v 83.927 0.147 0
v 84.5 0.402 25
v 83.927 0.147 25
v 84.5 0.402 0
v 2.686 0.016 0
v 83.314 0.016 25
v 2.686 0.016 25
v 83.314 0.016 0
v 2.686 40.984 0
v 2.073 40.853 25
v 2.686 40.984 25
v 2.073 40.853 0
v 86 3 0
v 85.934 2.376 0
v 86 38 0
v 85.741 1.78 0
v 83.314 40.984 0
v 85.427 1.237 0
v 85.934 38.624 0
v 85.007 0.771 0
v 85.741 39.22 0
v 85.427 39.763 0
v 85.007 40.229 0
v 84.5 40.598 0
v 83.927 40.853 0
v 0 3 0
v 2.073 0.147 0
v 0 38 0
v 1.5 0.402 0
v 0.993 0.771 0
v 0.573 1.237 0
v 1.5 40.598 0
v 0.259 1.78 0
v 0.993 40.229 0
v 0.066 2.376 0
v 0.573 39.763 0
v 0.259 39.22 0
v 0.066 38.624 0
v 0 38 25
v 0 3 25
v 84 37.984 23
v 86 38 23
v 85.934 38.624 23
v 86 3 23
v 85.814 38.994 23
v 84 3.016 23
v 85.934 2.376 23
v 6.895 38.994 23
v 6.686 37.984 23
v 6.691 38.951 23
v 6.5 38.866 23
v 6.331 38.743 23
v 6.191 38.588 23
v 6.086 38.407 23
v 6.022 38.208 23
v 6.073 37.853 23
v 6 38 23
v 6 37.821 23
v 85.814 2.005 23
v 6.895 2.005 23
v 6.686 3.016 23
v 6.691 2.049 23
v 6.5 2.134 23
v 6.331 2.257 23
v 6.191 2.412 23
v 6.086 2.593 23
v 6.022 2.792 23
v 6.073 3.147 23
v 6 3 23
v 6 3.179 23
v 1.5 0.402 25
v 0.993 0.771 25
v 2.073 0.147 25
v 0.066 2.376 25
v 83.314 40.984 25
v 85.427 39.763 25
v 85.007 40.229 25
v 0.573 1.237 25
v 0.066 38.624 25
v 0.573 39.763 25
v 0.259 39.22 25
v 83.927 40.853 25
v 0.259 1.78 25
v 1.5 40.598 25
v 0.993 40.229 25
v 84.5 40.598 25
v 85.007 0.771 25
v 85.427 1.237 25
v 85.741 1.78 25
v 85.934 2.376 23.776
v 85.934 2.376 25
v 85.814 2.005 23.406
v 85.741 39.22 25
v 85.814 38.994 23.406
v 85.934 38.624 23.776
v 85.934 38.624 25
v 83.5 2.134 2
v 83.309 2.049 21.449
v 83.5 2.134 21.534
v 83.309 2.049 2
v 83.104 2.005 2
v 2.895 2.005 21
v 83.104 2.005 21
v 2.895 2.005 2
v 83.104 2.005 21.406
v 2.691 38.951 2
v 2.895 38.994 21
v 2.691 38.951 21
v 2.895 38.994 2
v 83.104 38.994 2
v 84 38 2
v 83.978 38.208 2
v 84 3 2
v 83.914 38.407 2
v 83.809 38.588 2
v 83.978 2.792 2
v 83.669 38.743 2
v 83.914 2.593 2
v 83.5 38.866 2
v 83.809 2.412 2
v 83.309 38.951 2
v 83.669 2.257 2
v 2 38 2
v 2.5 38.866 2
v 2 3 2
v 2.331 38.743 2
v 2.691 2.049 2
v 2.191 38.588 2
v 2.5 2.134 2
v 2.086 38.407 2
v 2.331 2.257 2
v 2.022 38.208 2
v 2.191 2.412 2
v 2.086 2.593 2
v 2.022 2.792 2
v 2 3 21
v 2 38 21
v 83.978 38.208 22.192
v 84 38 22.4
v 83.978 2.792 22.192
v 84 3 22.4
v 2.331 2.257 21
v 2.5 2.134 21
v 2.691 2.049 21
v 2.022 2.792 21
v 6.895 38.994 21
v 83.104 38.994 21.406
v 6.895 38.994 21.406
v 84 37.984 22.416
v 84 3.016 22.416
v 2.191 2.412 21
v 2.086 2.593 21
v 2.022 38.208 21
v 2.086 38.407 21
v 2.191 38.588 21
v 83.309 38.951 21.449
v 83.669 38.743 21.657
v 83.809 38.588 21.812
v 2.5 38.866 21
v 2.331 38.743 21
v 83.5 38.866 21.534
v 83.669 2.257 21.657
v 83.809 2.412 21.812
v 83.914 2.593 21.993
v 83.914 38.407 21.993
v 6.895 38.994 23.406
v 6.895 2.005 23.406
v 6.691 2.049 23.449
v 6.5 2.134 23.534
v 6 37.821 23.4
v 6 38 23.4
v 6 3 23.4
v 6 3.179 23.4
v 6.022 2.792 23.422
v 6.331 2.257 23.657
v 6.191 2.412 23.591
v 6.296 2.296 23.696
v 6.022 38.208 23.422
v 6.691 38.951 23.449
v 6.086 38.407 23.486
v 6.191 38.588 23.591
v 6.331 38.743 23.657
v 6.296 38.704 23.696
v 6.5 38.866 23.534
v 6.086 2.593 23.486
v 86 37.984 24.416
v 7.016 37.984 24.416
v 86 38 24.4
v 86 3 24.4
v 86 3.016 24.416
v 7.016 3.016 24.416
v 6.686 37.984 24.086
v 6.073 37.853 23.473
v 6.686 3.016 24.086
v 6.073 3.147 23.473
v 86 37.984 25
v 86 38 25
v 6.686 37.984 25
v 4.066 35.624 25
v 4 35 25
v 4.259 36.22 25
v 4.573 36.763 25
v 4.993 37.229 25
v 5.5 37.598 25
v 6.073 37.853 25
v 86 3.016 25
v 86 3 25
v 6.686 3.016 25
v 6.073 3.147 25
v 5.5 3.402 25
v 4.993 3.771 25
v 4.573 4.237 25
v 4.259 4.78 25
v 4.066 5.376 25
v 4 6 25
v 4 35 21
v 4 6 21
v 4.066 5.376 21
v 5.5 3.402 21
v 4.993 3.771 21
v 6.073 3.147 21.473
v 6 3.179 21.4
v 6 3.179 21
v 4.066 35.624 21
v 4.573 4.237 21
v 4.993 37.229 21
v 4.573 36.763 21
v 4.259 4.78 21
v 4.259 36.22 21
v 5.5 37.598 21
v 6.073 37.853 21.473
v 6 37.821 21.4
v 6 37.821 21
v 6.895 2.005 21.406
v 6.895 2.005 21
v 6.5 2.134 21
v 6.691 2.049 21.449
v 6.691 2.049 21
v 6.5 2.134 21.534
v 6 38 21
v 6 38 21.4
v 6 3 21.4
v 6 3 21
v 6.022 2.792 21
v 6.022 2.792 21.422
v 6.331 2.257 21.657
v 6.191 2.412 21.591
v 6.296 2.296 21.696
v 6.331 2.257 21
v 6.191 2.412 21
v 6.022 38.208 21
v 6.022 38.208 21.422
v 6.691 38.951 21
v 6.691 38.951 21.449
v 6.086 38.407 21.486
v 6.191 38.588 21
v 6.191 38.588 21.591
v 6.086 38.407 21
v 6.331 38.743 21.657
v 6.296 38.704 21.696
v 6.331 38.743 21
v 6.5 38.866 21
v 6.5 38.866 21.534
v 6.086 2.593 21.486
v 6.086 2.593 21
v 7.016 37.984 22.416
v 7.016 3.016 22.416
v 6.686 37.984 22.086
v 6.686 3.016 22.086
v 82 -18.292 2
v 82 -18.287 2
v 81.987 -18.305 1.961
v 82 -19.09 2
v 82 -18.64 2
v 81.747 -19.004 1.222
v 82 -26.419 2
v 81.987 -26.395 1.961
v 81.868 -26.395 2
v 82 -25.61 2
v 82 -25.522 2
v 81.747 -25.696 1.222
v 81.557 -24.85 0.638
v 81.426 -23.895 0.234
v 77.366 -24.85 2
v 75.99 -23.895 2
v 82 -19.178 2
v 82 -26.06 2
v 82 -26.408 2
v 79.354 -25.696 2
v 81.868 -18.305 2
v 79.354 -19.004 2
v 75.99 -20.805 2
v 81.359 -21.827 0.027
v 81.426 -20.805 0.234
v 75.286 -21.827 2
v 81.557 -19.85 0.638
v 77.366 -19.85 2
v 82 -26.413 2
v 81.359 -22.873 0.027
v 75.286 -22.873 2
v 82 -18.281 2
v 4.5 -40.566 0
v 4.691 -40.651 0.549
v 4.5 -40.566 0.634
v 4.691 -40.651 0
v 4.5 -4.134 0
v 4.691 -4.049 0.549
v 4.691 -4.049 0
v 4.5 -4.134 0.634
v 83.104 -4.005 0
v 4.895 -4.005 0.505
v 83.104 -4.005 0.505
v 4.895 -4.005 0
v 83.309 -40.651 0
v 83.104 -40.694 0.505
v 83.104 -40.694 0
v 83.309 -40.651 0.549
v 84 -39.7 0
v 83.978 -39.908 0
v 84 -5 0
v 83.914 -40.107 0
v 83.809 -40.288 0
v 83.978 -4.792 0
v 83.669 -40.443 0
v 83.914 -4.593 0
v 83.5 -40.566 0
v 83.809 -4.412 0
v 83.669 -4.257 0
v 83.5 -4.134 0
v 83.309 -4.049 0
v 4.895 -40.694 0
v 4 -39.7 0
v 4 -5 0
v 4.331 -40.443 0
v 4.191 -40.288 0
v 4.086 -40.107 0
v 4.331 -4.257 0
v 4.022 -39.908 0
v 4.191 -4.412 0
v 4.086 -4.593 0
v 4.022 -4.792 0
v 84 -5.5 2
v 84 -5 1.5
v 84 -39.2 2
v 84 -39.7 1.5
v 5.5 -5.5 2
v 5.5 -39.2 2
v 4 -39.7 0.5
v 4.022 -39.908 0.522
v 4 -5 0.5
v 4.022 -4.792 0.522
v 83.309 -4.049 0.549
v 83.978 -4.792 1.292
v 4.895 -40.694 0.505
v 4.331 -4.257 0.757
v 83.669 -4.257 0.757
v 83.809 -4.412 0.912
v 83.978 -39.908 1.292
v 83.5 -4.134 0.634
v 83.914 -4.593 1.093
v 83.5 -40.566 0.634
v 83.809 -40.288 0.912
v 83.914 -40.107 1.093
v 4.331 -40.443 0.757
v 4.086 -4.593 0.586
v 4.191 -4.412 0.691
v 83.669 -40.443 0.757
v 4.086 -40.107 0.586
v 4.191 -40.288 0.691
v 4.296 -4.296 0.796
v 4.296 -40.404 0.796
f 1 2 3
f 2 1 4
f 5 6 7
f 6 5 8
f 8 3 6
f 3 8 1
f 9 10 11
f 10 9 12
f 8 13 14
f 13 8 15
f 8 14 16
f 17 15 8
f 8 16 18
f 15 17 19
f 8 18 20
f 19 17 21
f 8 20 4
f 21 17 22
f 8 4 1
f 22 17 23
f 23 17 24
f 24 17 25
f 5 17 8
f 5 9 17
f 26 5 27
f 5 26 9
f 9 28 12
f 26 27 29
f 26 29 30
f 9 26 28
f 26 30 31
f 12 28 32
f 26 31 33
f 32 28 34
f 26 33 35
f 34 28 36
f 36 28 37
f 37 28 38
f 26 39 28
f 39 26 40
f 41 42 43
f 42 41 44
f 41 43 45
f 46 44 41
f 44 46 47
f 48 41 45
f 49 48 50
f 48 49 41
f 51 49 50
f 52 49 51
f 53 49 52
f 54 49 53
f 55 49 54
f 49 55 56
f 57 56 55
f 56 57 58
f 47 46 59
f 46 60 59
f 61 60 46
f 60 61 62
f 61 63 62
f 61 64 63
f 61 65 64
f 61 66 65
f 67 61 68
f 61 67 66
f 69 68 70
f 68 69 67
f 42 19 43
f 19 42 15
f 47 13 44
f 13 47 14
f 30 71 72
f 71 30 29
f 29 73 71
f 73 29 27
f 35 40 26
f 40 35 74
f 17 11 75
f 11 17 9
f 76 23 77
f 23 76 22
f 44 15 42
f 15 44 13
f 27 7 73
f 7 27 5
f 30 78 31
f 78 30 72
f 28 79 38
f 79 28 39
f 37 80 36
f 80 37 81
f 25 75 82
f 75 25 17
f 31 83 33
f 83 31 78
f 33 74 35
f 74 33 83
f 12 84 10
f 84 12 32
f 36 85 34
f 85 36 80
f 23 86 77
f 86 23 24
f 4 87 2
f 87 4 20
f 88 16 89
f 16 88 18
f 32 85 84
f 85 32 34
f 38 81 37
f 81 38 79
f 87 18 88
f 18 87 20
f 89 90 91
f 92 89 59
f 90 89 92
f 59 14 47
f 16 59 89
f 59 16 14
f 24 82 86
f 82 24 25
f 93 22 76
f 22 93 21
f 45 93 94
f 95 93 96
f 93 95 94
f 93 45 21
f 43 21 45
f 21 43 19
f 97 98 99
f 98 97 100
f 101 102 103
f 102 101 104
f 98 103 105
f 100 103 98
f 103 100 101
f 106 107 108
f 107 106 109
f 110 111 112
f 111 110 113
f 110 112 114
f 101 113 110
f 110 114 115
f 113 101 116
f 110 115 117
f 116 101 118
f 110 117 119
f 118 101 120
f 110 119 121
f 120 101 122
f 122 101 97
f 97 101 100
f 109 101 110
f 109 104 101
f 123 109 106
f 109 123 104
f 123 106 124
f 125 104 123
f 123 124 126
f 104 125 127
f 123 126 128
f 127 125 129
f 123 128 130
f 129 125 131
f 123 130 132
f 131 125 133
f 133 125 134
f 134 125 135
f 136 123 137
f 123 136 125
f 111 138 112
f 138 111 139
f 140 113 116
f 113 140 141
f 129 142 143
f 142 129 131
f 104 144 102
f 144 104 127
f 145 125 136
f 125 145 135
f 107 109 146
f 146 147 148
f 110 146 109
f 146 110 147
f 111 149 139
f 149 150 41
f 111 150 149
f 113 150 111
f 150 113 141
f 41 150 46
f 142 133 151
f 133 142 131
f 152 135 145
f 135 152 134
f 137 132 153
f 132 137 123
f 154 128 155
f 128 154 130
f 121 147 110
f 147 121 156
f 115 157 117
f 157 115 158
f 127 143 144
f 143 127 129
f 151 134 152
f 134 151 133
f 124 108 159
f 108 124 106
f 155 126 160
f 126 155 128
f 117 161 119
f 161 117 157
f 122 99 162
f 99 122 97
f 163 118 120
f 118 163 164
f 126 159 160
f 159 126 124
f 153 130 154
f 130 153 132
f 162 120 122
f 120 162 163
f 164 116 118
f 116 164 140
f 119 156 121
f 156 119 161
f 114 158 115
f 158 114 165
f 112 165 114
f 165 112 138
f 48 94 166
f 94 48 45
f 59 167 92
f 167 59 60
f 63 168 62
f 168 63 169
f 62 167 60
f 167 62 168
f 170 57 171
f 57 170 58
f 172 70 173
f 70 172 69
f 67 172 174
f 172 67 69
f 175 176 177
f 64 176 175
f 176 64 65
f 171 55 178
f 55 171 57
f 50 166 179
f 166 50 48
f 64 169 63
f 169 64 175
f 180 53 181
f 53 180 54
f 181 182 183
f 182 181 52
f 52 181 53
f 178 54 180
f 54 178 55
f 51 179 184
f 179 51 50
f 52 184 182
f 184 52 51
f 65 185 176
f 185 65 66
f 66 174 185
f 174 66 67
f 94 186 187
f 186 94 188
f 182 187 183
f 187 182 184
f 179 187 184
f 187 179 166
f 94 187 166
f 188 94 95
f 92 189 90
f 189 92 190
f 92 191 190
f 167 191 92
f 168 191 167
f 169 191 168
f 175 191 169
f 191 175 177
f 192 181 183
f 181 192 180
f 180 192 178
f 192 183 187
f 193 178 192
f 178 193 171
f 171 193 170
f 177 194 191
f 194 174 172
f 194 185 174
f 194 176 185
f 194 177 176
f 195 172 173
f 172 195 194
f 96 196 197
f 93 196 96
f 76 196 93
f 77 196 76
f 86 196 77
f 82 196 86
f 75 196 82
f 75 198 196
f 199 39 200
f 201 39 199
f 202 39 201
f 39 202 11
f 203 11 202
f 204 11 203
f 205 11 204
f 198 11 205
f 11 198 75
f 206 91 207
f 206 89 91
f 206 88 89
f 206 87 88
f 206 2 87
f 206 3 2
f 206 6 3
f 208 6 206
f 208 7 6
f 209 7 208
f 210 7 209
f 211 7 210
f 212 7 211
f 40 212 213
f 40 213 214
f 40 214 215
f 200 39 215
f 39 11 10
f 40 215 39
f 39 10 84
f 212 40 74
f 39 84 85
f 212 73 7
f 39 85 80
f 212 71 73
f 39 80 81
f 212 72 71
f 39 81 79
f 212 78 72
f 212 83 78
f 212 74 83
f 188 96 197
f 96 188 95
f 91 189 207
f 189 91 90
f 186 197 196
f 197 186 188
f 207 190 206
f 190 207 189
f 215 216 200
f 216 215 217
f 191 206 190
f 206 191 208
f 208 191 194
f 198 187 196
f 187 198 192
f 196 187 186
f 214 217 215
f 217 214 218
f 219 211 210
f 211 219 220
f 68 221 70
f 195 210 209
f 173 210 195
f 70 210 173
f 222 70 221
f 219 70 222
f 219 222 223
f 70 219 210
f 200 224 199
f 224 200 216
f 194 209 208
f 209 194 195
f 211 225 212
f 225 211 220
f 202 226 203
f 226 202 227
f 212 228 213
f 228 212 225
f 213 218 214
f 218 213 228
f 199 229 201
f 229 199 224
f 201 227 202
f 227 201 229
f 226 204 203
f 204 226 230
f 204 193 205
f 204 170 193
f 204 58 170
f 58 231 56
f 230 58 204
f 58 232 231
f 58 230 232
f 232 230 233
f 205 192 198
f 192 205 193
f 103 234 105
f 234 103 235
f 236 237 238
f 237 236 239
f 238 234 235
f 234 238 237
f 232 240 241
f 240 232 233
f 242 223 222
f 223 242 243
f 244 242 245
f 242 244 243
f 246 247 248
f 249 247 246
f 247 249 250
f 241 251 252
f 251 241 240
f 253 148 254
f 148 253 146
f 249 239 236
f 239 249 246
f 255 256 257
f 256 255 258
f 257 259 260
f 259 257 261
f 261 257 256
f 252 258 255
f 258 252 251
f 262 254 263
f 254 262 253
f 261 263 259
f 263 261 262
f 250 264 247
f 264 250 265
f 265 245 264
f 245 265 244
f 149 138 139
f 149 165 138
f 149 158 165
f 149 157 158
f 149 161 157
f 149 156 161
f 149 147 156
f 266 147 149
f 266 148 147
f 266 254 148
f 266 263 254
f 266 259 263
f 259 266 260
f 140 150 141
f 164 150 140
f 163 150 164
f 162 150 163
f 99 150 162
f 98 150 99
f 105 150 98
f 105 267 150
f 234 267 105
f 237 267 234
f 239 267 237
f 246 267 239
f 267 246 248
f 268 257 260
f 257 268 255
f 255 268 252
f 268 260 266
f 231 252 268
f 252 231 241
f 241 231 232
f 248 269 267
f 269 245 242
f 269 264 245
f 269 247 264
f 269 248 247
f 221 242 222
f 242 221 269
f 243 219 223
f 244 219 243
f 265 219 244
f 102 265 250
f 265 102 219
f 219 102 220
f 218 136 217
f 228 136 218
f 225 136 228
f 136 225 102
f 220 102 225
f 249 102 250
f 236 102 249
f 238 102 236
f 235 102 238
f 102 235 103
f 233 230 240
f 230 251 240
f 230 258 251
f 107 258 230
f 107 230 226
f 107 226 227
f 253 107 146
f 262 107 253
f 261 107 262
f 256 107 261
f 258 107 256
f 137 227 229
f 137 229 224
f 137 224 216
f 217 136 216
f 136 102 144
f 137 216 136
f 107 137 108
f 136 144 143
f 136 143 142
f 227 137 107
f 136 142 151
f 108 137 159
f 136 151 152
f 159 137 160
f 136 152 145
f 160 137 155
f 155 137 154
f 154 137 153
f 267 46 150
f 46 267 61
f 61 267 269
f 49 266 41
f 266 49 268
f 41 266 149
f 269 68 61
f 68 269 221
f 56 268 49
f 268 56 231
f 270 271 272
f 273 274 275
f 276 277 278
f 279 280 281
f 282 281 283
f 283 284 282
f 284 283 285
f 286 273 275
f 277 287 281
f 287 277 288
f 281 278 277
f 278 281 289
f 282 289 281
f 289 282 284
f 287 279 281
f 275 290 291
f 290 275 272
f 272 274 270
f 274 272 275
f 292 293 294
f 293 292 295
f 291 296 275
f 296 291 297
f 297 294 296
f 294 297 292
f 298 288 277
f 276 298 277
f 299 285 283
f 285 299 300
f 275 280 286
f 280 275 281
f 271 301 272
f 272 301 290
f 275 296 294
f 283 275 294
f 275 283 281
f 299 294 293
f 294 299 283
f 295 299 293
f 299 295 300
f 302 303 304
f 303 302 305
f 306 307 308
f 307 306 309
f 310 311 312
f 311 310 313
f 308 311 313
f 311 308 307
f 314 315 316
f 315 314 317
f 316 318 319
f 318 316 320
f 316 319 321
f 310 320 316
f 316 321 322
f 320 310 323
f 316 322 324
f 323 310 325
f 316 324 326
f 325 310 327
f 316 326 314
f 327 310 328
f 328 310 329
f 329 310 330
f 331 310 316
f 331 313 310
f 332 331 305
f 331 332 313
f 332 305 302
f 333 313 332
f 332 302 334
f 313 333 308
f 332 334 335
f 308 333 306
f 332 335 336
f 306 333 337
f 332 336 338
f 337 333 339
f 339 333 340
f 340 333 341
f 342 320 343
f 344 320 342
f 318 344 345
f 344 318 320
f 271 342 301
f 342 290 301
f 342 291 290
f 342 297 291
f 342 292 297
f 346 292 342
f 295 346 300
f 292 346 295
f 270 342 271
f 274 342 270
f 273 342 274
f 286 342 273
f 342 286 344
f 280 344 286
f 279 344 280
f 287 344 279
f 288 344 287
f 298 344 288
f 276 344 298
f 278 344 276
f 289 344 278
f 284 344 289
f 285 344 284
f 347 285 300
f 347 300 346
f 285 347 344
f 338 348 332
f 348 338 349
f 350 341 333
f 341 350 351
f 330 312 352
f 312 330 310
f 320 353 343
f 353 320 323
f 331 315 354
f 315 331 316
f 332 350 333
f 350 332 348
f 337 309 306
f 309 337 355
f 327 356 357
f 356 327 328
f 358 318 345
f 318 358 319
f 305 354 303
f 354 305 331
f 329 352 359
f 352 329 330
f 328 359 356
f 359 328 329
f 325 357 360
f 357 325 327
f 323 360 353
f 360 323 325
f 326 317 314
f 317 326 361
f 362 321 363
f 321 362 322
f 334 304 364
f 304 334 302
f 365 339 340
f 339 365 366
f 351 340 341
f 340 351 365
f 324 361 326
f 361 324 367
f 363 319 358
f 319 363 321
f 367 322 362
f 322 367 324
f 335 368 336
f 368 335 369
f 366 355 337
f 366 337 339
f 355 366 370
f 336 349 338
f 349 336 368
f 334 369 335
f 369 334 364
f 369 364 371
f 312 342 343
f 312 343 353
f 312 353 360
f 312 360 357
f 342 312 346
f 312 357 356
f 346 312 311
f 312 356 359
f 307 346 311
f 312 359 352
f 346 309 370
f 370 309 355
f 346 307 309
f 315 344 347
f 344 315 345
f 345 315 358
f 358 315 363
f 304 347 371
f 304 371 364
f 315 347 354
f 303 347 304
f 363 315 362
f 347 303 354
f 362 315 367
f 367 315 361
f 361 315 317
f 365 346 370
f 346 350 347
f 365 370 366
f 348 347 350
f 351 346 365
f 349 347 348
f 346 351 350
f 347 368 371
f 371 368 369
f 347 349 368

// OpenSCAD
itemsShown="both"; // [both,box,lid]
boxLength=86;
boxWidth=41;
boxHeight=25;
cornerRadius=3;
wallThickness=2;
bottomThickness=2;
lidThickness=2;
lidClearance=0.3;
lidEdgeThickness=0.5;
// Notch in the lid
withNotch=true;//true;//[true:false]

/* [Global] */
if (itemsShown=="box") showBox();
if (itemsShown=="lid") showLid();
if (itemsShown=="both"){showBox();showLid();}

module showLid(){
	translate ([0, -2*wallThickness, 0]) 
	roundBoxLid(l=boxLength-wallThickness,
				w=boxWidth-2*wallThickness-lidClearance,
				h=lidThickness,
				et=lidEdgeThickness,
				r=cornerRadius-wallThickness,
				notch=withNotch);
}

module showBox(){
	round_box(l=boxLength,
			  w=boxWidth,
			  h=boxHeight,
			  bt=bottomThickness,
			  wt=wallThickness,
			  lt=lidThickness,
			  r=cornerRadius);
}

module round_box(l=40,w=30,h=30,bt=2,wt=2,lt=2,r=5,){
	difference() { 
		round_cube(l=l,w=w,h=h-lt,r=r);
		translate ([wt, wt, bt]) 
		round_cube(l=l-wt*2,w=w-wt*2,h=h,r=r-wt);
	}
	//use two box rims. one to make a slope to support the lid
	roundBoxRim();
	translate ([0, 0, -wt]) roundBoxRim();
}

module roundBoxRim(l=boxLength,
				   w=boxWidth,
				   h=boxHeight,
				   et=lidEdgeThickness,
				   r=cornerRadius,
				   wt=wallThickness,
				   lt=lidThickness){
	difference() { 
		translate ([0, 0, h-lt]) 
		round_cube(l=l,w=w,h=lt,r=r);
		translate ([wt+lt,wt+lt-et*2,h-lt-0.1]) 
		round_cube(l=l*2,w=w-2*(wt+lt)+4*et,h=lt+0.2,r=r-wt+lt);

		//subtract out a lid to make the ledge
		translate ([wt, w-wt, h-lt-0.1])
		roundBoxLid(l=l*2,w=w-2*wt,h=lt+0.1,wt=wt,t=lt,et=0.5,r=r-wt,notch=false);
	}
}

module roundBoxLid(l=40,w=30,h=3,wt=2,t=2,et=0.5,r=5,notch=true){
	translate ([l, 0, 0]) 
	rotate (a = [0, 0, 180]) 
	difference(){
		round_cube(l=l-1-3,w=w,h=h,t=t,r=r);

		translate ([-1, 0, et]) rotate (a = [45, 0, 0])  cube (size = [l+2-3, h*2, h*2]); 
		translate ([-1, w, et]) rotate (a = [45, 0, 0])  cube (size = [l+2-3, h*2, h*2]); 
		translate ([l-1-3, -1, et]) rotate (a = [45, 0, 90]) cube (size = [w+2, h*2, h*2]); 
		if (notch==true){
			translate([2,w/2,h+0.001]) thumbNotch(10/2,72,t);
		}
	}
}

module thumbNotch(
	thumbR=12/2,
	angle=72,
	notchHeight=2){

	size=10*thumbR;

	rotate([0,0,90])
	difference(){
		translate([0,
					(thumbR*sin(angle)-notchHeight)/tan(angle),
					 thumbR*sin(angle)-notchHeight])
		rotate([angle,0,0])
		cylinder(r=thumbR,h=size,$fn=30);

		translate([-size,-size,0])
		cube(size*2);
	}
}

module round_cube(l=40,w=30,h=20,r=5,$fn=30){
	hull(){ 
		translate ([r, r, 0]) cylinder (h = h, r=r);
		translate ([r, w-r, 0]) cylinder (h = h, r=r);
		translate ([l-r,w-r, 0]) cylinder (h = h, r=r);
		translate ([l-r, r, 0]) cylinder (h = h, r=r);
	}
}
